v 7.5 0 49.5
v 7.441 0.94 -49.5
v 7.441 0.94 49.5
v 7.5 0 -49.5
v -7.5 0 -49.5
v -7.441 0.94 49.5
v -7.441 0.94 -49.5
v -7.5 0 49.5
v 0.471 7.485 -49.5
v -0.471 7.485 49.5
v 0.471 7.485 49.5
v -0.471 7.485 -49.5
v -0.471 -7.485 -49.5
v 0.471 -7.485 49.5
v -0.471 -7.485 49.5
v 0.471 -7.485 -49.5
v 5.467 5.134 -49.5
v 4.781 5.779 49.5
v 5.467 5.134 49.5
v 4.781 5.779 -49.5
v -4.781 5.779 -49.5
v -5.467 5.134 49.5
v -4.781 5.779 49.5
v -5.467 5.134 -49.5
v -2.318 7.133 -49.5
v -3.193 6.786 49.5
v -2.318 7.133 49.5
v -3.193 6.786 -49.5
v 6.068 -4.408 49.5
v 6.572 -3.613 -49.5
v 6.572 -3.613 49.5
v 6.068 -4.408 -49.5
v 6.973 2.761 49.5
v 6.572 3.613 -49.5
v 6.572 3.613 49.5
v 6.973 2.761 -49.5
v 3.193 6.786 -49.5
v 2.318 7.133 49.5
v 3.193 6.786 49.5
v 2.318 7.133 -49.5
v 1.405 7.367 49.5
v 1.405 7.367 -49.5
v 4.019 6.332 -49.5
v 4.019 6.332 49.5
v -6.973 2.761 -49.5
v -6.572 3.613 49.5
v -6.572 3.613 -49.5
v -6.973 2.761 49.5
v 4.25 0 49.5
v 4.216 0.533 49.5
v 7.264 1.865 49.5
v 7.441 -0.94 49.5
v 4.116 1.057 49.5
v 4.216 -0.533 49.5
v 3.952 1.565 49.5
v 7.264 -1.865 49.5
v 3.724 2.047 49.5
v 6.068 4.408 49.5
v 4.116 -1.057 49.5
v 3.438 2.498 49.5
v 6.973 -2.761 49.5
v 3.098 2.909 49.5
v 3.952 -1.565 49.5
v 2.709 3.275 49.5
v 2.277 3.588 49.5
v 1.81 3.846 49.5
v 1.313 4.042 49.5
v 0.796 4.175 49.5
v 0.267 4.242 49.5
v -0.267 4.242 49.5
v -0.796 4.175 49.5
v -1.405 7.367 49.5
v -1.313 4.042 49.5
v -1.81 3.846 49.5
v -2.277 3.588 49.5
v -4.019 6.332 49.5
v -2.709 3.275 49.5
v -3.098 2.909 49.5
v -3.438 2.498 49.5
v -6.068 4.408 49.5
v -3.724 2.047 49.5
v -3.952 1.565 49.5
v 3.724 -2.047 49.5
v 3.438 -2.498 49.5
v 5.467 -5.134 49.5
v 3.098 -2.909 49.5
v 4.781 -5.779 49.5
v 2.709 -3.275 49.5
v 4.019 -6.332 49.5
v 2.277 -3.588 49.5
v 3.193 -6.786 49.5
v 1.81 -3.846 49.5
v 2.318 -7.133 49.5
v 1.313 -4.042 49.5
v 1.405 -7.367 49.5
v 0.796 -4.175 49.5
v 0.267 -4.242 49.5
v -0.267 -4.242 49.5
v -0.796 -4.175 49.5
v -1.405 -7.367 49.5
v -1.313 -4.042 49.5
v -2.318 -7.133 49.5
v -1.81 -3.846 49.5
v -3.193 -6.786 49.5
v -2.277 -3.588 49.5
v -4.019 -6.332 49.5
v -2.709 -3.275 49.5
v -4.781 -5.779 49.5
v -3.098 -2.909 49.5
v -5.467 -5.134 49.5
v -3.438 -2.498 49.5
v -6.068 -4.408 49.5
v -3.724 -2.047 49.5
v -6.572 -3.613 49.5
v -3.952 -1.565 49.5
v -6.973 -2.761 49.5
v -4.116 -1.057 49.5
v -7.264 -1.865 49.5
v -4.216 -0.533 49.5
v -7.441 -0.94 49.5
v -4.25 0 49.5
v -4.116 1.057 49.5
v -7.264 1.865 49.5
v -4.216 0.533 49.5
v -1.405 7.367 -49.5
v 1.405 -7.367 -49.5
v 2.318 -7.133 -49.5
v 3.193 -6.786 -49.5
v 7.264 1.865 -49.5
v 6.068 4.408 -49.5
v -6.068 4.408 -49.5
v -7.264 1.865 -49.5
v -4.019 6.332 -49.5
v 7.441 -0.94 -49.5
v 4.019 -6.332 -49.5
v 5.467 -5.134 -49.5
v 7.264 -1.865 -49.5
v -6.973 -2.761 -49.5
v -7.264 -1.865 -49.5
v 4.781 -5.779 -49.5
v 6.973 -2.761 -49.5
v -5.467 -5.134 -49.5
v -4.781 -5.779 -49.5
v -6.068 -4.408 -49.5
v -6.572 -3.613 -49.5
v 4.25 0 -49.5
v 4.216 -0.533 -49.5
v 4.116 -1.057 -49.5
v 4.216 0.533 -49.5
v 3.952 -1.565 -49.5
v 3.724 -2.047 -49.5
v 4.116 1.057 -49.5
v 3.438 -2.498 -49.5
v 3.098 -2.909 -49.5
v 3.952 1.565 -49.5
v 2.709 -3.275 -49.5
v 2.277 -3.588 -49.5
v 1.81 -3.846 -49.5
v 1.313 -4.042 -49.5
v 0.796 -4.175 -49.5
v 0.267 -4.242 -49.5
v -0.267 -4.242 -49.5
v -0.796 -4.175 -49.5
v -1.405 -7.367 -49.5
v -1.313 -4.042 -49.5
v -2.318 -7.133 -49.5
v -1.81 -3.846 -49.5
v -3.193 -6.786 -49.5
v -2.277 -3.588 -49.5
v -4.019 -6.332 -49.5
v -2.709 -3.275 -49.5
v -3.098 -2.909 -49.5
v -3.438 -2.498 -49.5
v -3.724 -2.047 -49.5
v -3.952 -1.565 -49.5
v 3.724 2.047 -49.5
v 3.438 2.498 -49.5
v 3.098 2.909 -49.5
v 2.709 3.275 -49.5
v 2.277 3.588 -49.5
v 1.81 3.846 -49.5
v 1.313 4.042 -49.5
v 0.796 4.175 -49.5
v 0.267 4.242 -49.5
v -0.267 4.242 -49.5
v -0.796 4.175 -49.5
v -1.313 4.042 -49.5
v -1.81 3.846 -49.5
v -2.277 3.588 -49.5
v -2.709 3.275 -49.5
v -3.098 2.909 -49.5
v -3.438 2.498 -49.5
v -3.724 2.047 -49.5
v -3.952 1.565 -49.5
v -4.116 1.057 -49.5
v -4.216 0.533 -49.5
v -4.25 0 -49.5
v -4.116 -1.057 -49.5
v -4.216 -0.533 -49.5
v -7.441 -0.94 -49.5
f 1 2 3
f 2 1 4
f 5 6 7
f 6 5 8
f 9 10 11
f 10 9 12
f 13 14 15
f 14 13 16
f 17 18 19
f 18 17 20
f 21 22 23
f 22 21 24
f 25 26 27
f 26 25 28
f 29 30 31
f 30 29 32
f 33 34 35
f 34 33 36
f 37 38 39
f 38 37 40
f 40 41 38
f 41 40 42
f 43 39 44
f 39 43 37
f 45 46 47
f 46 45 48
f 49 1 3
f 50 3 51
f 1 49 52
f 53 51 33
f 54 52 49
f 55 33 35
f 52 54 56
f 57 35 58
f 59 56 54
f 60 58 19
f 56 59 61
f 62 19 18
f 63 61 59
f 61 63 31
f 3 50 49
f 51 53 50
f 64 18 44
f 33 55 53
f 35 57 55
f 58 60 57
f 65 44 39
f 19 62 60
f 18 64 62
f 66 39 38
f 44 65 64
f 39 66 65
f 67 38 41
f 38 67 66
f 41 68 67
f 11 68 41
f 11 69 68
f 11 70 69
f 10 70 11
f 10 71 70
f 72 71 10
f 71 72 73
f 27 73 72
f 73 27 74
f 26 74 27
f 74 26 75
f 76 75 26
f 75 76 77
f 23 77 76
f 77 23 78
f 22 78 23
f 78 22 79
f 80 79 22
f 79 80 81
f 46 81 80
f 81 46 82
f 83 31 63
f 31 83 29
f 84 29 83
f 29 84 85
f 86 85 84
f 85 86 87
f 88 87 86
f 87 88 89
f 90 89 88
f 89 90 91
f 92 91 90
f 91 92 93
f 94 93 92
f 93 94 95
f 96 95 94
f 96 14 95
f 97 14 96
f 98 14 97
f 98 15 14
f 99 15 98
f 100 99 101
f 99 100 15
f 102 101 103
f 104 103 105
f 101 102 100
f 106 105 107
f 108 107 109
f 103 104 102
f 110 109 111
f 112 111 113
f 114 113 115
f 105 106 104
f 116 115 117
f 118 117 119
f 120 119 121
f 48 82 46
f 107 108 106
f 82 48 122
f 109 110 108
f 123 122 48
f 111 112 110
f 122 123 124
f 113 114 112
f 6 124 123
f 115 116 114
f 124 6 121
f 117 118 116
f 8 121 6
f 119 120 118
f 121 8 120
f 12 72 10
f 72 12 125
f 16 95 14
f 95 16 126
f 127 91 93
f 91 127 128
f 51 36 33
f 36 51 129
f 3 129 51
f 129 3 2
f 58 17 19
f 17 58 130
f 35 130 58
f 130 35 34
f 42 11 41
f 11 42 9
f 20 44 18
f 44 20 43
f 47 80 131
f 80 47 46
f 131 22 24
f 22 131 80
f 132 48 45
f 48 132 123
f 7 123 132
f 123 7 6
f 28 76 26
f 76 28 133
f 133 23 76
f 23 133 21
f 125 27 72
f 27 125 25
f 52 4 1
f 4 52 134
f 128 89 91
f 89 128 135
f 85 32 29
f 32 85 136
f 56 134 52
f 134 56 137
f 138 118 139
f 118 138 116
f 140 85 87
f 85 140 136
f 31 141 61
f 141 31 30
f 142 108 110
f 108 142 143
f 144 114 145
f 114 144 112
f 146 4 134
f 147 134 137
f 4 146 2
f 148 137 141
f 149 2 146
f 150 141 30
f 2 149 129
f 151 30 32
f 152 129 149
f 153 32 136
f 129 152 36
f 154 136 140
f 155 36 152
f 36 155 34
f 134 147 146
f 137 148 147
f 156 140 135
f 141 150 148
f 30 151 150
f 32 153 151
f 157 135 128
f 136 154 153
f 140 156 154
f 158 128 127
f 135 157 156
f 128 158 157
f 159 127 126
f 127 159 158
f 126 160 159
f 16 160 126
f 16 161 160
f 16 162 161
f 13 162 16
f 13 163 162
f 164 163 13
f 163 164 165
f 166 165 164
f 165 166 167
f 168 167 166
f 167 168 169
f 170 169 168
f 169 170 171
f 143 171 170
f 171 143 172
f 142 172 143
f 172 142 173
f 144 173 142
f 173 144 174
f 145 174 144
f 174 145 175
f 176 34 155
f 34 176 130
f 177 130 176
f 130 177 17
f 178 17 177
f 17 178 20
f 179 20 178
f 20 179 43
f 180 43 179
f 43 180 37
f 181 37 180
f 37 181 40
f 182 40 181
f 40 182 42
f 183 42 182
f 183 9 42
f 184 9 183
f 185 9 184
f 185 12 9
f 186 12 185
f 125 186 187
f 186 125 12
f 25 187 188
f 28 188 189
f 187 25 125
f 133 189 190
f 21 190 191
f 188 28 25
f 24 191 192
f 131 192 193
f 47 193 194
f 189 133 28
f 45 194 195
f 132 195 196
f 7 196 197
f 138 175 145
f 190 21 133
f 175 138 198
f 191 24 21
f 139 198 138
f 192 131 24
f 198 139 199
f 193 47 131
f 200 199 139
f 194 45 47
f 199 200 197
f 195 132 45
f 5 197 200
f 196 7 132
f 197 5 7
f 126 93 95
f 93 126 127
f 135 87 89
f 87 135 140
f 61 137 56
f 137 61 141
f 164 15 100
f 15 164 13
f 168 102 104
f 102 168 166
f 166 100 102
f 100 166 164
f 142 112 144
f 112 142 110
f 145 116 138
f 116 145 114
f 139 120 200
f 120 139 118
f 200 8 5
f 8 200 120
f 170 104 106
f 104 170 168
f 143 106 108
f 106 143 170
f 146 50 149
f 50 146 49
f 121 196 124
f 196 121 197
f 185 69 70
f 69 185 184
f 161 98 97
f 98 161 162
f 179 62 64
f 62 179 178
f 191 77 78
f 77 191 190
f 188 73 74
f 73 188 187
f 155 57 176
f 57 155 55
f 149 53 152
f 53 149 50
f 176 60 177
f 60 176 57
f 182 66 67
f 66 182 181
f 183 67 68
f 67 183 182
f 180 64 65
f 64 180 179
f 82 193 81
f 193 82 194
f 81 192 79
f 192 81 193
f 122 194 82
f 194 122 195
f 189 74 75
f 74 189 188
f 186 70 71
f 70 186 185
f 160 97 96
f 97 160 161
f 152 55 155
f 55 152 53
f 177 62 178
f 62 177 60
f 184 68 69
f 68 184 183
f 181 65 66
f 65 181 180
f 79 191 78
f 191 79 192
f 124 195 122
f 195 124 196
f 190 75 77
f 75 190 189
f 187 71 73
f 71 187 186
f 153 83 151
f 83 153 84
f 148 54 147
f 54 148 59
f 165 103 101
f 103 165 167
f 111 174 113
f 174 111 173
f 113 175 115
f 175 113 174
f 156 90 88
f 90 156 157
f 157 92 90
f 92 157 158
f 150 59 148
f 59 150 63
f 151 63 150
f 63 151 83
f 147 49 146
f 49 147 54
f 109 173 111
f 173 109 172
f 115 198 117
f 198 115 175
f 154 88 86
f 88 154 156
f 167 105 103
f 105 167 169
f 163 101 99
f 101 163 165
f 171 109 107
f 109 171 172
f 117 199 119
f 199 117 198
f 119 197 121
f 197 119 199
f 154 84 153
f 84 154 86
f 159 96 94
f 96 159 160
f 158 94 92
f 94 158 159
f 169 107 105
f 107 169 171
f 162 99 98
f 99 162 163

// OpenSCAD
$fn = 50;


difference() {
	union() {
		translate(v = [0, 0, -49.5000000000]) {
			cylinder(h = 99, r = 7.5000000000);
		}
	}
	union() {
		translate(v = [0, 0, -100.0000000000]) {
			cylinder(h = 200, r = 4.2500000000);
		}
	}
}
